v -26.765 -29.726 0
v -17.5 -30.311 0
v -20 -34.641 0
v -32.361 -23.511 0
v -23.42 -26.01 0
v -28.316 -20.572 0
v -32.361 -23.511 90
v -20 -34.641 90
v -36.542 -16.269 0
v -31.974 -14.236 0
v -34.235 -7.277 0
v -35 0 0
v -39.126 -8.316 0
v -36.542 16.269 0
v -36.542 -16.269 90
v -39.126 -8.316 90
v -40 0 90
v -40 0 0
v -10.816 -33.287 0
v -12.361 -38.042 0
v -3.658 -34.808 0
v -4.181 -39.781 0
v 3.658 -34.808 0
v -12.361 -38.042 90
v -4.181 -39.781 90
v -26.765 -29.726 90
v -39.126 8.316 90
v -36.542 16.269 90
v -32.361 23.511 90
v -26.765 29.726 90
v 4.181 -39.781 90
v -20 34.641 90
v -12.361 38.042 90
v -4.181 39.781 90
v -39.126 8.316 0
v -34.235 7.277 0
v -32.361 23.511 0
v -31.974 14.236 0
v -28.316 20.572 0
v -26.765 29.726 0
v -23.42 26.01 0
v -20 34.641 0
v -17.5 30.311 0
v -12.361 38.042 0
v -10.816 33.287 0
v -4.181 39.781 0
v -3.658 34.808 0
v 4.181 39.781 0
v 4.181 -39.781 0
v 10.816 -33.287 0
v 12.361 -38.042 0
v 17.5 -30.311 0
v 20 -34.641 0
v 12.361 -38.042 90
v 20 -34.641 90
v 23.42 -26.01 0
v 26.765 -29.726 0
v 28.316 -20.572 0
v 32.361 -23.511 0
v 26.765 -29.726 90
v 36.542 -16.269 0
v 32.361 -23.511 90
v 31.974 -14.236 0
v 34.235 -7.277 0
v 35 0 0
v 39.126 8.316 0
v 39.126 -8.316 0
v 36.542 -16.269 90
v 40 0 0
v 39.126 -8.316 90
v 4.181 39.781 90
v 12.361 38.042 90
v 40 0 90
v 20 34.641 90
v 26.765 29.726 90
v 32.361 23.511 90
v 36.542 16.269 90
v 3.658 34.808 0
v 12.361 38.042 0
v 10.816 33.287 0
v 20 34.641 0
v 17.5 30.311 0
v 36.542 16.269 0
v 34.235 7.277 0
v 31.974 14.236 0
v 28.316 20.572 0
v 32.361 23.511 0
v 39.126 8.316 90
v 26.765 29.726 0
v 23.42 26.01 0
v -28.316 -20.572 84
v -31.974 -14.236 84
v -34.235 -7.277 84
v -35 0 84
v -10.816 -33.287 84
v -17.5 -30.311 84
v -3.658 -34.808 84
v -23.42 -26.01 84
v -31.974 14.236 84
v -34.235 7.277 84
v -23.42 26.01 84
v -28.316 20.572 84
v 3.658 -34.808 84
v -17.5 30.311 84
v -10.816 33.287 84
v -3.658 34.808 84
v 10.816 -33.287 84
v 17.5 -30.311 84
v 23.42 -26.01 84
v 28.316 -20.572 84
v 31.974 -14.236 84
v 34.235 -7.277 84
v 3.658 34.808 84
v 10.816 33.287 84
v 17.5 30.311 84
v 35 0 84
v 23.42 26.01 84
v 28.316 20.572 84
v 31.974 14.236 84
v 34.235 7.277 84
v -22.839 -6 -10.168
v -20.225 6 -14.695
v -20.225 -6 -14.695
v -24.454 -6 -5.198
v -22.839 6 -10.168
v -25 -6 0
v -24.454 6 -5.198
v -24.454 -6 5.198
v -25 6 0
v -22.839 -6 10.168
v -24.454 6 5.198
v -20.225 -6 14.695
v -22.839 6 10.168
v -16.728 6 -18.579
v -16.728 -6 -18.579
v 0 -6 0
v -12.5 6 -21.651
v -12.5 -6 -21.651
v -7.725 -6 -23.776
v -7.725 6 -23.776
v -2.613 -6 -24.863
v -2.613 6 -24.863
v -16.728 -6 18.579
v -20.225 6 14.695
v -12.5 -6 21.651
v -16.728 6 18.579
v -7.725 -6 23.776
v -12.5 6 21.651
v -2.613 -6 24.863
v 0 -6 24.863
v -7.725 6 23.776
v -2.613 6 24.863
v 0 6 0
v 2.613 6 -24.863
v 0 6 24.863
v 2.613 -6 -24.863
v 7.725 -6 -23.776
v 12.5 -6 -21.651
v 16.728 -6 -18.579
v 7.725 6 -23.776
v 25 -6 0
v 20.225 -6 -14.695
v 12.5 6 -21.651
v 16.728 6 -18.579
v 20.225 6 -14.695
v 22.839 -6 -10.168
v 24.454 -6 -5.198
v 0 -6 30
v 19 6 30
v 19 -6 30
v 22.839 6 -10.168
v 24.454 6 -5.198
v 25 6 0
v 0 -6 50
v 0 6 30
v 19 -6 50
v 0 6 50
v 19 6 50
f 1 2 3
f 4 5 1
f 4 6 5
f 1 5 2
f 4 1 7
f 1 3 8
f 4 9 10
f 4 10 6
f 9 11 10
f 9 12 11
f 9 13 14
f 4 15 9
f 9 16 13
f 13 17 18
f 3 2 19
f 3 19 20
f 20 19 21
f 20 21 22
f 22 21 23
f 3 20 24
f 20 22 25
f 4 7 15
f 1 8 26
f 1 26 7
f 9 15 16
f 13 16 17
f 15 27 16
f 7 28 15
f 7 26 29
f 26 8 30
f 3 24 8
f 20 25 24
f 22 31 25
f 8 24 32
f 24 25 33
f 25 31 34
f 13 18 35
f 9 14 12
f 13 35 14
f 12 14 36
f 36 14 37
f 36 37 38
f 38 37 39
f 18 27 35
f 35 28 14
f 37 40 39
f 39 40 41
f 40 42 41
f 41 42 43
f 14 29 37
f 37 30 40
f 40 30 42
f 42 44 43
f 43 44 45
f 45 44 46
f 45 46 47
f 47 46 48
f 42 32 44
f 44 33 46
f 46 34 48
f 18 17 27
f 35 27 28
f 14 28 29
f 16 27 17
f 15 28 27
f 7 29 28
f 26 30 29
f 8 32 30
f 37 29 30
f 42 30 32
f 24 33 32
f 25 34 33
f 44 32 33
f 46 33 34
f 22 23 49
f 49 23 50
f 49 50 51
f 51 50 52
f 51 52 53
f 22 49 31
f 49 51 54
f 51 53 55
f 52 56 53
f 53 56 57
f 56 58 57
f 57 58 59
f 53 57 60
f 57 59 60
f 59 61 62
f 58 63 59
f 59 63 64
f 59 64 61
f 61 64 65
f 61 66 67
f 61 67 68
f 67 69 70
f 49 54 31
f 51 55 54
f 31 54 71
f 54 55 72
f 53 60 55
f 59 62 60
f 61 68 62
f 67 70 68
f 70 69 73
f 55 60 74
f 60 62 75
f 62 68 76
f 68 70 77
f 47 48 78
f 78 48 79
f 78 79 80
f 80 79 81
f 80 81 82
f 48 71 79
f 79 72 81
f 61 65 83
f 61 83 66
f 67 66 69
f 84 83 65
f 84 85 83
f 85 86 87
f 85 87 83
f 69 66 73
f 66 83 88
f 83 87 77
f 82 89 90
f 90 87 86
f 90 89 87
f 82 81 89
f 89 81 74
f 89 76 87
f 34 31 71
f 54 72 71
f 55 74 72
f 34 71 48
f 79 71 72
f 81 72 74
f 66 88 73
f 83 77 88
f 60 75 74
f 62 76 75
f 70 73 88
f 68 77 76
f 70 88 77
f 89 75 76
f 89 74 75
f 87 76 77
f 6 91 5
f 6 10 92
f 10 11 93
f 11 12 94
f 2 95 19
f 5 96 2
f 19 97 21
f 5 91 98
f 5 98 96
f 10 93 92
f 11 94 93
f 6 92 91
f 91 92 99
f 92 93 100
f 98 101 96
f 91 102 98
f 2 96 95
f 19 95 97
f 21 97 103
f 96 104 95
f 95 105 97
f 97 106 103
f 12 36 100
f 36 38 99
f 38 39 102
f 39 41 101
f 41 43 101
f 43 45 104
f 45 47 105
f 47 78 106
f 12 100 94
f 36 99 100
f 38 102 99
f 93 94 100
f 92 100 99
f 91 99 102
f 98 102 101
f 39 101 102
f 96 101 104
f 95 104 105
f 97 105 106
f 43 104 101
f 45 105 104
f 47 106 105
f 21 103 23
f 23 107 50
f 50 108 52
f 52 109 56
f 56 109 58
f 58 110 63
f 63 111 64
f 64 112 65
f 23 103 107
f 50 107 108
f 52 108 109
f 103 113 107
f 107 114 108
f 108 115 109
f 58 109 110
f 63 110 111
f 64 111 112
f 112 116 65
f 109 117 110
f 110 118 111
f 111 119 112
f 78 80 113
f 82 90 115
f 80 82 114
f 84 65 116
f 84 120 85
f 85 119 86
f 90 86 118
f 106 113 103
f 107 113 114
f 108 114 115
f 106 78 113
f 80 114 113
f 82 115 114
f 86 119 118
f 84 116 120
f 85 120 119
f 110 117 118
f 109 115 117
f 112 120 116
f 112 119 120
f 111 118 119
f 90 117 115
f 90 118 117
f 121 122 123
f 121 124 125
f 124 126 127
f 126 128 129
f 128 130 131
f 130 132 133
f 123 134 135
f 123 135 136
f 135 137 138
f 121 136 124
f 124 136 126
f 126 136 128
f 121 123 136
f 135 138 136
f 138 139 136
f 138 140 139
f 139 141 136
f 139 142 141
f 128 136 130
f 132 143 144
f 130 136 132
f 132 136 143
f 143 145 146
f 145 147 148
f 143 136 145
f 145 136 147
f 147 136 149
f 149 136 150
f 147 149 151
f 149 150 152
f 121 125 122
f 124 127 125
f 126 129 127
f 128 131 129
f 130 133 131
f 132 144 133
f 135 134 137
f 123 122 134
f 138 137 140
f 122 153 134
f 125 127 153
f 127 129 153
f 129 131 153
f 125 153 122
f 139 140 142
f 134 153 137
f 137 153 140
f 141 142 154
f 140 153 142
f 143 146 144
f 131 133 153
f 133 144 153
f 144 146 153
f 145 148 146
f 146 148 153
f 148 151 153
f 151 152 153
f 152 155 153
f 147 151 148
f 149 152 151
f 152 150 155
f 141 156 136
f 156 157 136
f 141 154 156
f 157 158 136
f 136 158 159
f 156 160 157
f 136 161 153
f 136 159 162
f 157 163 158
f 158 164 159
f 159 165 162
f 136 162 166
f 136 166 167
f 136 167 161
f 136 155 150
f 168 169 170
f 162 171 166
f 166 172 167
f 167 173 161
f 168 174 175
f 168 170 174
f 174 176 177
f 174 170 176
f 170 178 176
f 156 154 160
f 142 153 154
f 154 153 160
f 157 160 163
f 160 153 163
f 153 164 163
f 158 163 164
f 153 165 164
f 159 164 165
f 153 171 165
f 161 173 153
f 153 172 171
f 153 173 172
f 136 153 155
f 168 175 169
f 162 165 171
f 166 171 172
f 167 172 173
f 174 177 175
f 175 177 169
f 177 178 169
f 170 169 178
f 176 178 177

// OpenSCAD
union() {
    difference() {
        cylinder(h = 90, d = 80);
        cylinder(h = 84, d = 70, z = 6);
    }
    rotate([90, 0, 0])
    linear_extrude(height = 12, center = true)
    difference() {
        union() {
            square([19, 50], pos = [36, 20]);
            difference() {
                circle(d = 50, pos = [55, 45]);
                square([155, 200], pos = [-100, -50]);
            }
        }
        square([25, 30], pos = [40, 30]);
    }
}
